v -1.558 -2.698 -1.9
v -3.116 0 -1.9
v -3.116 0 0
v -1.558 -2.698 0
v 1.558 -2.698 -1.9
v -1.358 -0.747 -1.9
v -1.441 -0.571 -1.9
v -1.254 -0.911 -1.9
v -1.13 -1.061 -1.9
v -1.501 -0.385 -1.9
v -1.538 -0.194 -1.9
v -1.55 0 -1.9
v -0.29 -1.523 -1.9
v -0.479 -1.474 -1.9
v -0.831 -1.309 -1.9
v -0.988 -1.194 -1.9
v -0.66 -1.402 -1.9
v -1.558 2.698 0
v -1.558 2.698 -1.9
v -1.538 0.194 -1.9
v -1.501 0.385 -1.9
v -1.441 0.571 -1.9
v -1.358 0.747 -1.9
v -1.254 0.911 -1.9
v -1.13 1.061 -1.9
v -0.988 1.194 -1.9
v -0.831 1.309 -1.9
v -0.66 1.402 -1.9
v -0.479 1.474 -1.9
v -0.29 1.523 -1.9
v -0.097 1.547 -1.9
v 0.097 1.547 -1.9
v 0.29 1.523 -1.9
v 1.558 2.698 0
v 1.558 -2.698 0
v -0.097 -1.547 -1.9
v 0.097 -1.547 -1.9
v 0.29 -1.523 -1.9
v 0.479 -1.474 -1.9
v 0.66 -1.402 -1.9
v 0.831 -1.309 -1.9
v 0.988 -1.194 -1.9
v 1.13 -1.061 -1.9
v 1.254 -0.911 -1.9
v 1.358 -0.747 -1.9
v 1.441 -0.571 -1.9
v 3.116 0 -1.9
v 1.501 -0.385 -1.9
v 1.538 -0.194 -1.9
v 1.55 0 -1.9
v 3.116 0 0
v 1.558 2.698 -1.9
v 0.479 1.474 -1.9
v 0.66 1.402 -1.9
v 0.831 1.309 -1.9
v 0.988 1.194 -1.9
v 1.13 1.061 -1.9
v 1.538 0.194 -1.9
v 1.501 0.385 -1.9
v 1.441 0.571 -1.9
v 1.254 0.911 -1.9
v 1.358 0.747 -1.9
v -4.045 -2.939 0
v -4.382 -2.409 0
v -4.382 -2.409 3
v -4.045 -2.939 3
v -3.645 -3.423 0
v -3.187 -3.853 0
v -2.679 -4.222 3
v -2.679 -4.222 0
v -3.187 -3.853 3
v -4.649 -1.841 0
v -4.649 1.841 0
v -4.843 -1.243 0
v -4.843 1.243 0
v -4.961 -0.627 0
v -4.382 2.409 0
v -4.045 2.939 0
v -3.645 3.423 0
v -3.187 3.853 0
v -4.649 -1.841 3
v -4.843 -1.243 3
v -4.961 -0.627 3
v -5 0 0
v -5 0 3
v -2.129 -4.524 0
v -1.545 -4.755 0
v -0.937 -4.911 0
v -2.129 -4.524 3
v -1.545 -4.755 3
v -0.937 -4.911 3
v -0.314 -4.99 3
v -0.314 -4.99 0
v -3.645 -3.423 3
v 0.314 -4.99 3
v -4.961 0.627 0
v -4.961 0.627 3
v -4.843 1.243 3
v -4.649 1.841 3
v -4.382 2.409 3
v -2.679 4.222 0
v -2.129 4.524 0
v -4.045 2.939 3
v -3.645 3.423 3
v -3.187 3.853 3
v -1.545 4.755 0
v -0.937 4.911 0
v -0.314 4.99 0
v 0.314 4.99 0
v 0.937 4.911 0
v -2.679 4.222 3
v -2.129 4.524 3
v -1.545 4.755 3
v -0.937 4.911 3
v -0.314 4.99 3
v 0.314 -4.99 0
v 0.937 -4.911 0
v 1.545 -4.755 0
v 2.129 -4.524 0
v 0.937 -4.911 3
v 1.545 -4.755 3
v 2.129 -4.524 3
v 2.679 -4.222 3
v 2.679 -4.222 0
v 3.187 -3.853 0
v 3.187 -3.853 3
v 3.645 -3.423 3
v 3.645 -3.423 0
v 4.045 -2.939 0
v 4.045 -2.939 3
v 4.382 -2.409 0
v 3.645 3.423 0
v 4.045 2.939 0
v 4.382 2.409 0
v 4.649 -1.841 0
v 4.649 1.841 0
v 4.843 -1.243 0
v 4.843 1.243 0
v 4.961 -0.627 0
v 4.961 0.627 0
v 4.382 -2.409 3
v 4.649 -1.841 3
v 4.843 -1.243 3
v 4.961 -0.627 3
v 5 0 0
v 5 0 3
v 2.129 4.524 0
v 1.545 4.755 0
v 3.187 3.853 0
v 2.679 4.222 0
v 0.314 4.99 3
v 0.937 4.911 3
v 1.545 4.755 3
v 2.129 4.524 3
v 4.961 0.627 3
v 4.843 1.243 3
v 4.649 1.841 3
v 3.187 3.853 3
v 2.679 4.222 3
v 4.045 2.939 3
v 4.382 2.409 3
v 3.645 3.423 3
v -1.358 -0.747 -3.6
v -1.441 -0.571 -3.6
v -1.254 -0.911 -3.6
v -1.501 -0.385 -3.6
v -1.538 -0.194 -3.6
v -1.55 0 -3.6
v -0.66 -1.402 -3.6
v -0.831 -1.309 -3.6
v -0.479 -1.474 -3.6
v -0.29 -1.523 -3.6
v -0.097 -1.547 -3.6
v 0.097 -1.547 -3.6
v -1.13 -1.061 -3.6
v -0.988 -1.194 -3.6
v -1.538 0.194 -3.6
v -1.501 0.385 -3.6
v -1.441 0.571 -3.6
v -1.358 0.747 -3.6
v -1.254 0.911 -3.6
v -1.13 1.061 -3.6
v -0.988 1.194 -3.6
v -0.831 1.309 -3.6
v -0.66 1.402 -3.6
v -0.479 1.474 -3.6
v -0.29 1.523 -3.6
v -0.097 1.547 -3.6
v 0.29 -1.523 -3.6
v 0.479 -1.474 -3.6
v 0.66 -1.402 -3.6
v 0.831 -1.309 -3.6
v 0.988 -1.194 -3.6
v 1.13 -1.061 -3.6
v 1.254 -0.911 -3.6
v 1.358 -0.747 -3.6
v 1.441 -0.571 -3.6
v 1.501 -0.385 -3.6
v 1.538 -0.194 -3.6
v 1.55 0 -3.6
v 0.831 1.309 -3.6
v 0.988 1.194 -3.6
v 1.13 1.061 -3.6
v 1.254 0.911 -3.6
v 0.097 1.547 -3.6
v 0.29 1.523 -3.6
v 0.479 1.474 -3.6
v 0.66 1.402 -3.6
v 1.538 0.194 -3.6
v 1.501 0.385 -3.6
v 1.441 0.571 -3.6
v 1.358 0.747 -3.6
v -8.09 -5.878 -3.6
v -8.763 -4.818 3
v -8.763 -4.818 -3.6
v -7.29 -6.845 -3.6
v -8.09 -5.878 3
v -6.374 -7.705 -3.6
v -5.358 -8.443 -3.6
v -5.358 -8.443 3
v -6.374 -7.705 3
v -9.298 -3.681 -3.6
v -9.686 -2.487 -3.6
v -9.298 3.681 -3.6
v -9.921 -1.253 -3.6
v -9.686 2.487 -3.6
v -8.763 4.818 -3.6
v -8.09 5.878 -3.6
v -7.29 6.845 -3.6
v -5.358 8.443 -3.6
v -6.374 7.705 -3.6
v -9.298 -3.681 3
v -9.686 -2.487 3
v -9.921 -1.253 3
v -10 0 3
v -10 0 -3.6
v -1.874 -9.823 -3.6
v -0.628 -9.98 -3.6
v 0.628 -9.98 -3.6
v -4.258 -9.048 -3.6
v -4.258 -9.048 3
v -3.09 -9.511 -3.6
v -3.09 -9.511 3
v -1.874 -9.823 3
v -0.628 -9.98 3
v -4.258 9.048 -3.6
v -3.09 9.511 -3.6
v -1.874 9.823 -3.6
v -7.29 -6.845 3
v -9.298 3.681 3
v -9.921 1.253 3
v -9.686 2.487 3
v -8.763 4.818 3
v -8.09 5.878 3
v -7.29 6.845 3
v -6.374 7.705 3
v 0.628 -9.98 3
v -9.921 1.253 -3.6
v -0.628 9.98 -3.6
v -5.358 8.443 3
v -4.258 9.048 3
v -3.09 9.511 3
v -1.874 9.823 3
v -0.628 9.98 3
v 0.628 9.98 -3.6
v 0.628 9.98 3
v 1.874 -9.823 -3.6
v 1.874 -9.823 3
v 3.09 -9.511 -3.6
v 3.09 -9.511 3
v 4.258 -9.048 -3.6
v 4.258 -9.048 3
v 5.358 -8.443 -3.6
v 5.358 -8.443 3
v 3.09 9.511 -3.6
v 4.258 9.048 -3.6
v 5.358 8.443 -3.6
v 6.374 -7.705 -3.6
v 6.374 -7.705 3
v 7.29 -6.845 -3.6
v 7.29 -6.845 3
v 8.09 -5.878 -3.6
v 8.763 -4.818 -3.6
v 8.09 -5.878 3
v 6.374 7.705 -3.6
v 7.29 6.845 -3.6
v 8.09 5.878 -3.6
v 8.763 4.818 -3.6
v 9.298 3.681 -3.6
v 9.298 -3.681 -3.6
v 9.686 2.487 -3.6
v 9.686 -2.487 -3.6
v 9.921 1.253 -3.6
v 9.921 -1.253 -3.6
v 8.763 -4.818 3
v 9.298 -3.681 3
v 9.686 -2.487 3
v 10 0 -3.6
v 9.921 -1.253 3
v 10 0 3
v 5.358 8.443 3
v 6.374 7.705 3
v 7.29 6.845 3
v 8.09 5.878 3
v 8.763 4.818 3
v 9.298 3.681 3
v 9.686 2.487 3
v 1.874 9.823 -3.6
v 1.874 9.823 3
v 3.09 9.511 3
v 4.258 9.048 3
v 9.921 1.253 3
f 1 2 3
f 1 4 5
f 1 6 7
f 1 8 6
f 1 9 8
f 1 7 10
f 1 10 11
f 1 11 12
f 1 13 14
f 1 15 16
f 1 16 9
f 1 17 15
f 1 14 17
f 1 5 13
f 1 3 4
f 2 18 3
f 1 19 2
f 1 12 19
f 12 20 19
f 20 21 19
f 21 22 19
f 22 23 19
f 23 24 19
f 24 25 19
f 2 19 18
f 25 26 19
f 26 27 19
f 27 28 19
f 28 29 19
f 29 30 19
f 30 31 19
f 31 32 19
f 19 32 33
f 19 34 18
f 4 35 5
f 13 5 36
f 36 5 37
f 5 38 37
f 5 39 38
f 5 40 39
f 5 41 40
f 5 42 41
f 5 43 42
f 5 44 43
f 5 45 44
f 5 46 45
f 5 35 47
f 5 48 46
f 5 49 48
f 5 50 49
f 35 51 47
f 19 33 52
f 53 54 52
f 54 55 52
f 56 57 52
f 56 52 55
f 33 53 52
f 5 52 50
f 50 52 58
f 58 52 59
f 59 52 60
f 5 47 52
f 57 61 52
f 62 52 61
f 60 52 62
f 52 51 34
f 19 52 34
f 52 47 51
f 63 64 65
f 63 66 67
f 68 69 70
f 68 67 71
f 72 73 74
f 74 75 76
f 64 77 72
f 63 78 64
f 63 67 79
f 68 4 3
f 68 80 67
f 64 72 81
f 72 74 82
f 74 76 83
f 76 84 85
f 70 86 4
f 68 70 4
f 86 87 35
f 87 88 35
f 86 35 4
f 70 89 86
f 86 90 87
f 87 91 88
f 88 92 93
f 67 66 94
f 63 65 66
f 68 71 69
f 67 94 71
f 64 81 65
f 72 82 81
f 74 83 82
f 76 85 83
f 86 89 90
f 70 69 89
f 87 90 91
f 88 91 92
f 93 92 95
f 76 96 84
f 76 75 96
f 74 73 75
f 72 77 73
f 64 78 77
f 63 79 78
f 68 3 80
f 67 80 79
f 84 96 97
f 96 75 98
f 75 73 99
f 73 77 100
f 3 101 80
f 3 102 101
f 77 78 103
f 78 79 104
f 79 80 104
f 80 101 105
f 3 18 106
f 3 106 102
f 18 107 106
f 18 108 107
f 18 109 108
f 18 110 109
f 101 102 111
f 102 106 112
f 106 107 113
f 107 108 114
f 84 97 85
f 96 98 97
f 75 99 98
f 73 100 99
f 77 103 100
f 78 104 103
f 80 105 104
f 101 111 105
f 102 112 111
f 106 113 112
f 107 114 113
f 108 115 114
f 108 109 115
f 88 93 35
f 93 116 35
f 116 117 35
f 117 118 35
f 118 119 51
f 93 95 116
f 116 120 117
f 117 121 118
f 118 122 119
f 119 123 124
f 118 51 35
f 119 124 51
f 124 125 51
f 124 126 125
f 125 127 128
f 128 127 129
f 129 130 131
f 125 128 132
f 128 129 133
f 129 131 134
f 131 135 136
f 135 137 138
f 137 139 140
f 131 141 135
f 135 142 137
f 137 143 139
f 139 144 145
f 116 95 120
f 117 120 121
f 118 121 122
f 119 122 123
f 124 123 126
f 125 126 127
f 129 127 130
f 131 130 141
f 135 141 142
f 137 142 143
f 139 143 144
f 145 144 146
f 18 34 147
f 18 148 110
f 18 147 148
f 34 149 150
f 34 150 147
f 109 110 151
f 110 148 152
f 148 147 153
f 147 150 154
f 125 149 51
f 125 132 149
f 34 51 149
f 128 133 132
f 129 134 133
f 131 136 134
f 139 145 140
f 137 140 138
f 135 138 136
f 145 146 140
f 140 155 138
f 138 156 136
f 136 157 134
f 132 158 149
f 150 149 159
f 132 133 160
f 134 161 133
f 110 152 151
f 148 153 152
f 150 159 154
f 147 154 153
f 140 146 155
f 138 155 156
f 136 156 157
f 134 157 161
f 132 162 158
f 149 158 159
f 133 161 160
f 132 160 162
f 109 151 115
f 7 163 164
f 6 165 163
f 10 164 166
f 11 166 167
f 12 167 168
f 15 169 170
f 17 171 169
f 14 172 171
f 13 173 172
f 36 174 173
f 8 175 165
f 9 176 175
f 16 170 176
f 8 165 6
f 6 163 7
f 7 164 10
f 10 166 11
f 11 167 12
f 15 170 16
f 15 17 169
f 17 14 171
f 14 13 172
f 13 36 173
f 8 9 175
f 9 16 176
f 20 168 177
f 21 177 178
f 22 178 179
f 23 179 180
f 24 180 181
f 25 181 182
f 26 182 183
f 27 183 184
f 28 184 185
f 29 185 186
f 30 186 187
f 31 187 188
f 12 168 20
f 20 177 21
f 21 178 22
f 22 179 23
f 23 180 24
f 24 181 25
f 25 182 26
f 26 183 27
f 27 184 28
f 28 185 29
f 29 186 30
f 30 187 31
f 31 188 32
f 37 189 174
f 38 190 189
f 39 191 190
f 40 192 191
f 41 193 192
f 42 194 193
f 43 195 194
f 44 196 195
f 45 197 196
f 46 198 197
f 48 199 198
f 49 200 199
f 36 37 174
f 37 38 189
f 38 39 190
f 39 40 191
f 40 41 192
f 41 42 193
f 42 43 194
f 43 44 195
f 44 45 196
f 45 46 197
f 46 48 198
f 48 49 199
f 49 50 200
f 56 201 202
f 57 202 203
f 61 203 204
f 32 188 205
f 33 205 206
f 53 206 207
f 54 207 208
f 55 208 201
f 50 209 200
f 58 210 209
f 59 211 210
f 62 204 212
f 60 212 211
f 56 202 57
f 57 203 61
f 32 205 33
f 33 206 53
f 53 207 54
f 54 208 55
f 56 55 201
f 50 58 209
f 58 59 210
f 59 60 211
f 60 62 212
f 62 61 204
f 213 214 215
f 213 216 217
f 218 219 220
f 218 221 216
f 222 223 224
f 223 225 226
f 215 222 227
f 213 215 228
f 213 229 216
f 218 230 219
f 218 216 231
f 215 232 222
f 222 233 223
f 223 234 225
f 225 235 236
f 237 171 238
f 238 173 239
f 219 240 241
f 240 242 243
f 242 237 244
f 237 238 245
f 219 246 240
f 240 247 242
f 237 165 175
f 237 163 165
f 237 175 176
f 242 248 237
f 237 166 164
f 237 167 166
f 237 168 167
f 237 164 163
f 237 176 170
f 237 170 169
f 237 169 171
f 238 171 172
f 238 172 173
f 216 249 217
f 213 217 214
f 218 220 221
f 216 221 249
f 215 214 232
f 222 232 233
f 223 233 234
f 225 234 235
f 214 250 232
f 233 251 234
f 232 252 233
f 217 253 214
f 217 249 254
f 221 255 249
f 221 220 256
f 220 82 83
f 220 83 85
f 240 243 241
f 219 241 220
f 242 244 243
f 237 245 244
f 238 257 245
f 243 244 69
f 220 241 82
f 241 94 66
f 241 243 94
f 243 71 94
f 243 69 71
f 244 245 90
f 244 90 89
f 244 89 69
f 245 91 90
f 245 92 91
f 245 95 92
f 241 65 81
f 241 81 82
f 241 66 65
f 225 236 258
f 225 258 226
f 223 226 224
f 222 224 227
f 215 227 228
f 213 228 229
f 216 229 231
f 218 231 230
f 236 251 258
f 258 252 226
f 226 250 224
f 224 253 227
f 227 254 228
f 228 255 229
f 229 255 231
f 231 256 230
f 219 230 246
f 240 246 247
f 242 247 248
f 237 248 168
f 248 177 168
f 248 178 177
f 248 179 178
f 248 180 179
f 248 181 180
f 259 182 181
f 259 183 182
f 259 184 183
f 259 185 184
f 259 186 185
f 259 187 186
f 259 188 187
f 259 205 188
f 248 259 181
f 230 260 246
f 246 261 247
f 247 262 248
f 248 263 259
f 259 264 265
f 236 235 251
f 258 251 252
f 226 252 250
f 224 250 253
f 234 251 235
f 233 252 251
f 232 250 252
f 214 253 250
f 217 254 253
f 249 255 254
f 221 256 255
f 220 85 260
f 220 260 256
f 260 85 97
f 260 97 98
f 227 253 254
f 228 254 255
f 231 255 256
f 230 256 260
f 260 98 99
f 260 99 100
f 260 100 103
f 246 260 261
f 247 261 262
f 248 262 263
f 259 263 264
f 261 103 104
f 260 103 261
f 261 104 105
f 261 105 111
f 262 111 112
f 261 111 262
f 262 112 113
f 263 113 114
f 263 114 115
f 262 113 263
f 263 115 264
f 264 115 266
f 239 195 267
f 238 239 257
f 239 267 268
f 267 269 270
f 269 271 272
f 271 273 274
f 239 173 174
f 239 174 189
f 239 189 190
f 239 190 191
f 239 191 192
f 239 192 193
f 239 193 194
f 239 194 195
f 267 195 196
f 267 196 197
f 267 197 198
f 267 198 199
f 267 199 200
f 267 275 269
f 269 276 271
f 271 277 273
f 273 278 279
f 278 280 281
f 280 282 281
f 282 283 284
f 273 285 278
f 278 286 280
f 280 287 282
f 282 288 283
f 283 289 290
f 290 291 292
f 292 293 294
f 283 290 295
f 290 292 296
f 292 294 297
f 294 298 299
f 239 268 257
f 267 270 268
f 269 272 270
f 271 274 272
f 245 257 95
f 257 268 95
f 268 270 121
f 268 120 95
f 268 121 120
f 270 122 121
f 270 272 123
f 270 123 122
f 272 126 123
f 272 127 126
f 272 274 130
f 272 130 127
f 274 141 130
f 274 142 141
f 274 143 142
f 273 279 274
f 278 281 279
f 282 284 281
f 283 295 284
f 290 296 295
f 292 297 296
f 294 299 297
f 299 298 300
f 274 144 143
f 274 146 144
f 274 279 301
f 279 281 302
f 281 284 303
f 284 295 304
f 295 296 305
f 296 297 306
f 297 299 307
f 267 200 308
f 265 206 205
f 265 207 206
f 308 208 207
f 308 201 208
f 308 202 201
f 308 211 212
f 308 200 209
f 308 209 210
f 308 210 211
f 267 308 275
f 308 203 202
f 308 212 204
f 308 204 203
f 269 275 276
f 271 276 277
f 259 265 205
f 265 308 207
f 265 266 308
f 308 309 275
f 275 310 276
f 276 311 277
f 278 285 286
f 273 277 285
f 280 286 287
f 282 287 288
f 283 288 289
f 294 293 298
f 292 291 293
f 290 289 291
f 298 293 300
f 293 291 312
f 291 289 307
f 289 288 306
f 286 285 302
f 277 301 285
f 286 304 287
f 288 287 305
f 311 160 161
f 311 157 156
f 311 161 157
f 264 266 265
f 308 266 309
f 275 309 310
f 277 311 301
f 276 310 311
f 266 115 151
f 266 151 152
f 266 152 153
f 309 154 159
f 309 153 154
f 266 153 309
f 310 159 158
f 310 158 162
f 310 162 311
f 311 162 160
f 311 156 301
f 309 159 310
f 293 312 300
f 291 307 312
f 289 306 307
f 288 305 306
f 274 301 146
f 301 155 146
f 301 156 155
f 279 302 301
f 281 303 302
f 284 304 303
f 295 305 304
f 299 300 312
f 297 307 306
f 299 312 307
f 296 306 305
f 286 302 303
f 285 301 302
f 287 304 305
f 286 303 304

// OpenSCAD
$fn = 50;


difference() {
	union() {
		translate(v = [0, 0, -3.6000000000]) {
			cylinder(h = 6.6000000000, r = 10.0000000000);
		}
	}
	union() {
		translate(v = [0, 0, 0]) {
			rotate(a = [0, 0, 0]) {
				difference() {
					union() {
						translate(v = [0, 0, -1.9000000000]) {
							linear_extrude(height = 1.9000000000) {
								polygon(points = [[3.1158000000, 0.0000000000], [1.5579000000, 2.6983619531], [-1.5579000000, 2.6983619531], [-3.1158000000, 0.0000000000], [-1.5579000000, -2.6983619531], [1.5579000000, -2.6983619531]]);
							}
						}
					}
					union();
				}
			}
		}
		#cylinder(h = 3, r = 5.0000000000);
		#translate(v = [0, 0, -100.0000000000]) {
			cylinder(h = 200, r = 1.5500000000);
		}
	}
}
